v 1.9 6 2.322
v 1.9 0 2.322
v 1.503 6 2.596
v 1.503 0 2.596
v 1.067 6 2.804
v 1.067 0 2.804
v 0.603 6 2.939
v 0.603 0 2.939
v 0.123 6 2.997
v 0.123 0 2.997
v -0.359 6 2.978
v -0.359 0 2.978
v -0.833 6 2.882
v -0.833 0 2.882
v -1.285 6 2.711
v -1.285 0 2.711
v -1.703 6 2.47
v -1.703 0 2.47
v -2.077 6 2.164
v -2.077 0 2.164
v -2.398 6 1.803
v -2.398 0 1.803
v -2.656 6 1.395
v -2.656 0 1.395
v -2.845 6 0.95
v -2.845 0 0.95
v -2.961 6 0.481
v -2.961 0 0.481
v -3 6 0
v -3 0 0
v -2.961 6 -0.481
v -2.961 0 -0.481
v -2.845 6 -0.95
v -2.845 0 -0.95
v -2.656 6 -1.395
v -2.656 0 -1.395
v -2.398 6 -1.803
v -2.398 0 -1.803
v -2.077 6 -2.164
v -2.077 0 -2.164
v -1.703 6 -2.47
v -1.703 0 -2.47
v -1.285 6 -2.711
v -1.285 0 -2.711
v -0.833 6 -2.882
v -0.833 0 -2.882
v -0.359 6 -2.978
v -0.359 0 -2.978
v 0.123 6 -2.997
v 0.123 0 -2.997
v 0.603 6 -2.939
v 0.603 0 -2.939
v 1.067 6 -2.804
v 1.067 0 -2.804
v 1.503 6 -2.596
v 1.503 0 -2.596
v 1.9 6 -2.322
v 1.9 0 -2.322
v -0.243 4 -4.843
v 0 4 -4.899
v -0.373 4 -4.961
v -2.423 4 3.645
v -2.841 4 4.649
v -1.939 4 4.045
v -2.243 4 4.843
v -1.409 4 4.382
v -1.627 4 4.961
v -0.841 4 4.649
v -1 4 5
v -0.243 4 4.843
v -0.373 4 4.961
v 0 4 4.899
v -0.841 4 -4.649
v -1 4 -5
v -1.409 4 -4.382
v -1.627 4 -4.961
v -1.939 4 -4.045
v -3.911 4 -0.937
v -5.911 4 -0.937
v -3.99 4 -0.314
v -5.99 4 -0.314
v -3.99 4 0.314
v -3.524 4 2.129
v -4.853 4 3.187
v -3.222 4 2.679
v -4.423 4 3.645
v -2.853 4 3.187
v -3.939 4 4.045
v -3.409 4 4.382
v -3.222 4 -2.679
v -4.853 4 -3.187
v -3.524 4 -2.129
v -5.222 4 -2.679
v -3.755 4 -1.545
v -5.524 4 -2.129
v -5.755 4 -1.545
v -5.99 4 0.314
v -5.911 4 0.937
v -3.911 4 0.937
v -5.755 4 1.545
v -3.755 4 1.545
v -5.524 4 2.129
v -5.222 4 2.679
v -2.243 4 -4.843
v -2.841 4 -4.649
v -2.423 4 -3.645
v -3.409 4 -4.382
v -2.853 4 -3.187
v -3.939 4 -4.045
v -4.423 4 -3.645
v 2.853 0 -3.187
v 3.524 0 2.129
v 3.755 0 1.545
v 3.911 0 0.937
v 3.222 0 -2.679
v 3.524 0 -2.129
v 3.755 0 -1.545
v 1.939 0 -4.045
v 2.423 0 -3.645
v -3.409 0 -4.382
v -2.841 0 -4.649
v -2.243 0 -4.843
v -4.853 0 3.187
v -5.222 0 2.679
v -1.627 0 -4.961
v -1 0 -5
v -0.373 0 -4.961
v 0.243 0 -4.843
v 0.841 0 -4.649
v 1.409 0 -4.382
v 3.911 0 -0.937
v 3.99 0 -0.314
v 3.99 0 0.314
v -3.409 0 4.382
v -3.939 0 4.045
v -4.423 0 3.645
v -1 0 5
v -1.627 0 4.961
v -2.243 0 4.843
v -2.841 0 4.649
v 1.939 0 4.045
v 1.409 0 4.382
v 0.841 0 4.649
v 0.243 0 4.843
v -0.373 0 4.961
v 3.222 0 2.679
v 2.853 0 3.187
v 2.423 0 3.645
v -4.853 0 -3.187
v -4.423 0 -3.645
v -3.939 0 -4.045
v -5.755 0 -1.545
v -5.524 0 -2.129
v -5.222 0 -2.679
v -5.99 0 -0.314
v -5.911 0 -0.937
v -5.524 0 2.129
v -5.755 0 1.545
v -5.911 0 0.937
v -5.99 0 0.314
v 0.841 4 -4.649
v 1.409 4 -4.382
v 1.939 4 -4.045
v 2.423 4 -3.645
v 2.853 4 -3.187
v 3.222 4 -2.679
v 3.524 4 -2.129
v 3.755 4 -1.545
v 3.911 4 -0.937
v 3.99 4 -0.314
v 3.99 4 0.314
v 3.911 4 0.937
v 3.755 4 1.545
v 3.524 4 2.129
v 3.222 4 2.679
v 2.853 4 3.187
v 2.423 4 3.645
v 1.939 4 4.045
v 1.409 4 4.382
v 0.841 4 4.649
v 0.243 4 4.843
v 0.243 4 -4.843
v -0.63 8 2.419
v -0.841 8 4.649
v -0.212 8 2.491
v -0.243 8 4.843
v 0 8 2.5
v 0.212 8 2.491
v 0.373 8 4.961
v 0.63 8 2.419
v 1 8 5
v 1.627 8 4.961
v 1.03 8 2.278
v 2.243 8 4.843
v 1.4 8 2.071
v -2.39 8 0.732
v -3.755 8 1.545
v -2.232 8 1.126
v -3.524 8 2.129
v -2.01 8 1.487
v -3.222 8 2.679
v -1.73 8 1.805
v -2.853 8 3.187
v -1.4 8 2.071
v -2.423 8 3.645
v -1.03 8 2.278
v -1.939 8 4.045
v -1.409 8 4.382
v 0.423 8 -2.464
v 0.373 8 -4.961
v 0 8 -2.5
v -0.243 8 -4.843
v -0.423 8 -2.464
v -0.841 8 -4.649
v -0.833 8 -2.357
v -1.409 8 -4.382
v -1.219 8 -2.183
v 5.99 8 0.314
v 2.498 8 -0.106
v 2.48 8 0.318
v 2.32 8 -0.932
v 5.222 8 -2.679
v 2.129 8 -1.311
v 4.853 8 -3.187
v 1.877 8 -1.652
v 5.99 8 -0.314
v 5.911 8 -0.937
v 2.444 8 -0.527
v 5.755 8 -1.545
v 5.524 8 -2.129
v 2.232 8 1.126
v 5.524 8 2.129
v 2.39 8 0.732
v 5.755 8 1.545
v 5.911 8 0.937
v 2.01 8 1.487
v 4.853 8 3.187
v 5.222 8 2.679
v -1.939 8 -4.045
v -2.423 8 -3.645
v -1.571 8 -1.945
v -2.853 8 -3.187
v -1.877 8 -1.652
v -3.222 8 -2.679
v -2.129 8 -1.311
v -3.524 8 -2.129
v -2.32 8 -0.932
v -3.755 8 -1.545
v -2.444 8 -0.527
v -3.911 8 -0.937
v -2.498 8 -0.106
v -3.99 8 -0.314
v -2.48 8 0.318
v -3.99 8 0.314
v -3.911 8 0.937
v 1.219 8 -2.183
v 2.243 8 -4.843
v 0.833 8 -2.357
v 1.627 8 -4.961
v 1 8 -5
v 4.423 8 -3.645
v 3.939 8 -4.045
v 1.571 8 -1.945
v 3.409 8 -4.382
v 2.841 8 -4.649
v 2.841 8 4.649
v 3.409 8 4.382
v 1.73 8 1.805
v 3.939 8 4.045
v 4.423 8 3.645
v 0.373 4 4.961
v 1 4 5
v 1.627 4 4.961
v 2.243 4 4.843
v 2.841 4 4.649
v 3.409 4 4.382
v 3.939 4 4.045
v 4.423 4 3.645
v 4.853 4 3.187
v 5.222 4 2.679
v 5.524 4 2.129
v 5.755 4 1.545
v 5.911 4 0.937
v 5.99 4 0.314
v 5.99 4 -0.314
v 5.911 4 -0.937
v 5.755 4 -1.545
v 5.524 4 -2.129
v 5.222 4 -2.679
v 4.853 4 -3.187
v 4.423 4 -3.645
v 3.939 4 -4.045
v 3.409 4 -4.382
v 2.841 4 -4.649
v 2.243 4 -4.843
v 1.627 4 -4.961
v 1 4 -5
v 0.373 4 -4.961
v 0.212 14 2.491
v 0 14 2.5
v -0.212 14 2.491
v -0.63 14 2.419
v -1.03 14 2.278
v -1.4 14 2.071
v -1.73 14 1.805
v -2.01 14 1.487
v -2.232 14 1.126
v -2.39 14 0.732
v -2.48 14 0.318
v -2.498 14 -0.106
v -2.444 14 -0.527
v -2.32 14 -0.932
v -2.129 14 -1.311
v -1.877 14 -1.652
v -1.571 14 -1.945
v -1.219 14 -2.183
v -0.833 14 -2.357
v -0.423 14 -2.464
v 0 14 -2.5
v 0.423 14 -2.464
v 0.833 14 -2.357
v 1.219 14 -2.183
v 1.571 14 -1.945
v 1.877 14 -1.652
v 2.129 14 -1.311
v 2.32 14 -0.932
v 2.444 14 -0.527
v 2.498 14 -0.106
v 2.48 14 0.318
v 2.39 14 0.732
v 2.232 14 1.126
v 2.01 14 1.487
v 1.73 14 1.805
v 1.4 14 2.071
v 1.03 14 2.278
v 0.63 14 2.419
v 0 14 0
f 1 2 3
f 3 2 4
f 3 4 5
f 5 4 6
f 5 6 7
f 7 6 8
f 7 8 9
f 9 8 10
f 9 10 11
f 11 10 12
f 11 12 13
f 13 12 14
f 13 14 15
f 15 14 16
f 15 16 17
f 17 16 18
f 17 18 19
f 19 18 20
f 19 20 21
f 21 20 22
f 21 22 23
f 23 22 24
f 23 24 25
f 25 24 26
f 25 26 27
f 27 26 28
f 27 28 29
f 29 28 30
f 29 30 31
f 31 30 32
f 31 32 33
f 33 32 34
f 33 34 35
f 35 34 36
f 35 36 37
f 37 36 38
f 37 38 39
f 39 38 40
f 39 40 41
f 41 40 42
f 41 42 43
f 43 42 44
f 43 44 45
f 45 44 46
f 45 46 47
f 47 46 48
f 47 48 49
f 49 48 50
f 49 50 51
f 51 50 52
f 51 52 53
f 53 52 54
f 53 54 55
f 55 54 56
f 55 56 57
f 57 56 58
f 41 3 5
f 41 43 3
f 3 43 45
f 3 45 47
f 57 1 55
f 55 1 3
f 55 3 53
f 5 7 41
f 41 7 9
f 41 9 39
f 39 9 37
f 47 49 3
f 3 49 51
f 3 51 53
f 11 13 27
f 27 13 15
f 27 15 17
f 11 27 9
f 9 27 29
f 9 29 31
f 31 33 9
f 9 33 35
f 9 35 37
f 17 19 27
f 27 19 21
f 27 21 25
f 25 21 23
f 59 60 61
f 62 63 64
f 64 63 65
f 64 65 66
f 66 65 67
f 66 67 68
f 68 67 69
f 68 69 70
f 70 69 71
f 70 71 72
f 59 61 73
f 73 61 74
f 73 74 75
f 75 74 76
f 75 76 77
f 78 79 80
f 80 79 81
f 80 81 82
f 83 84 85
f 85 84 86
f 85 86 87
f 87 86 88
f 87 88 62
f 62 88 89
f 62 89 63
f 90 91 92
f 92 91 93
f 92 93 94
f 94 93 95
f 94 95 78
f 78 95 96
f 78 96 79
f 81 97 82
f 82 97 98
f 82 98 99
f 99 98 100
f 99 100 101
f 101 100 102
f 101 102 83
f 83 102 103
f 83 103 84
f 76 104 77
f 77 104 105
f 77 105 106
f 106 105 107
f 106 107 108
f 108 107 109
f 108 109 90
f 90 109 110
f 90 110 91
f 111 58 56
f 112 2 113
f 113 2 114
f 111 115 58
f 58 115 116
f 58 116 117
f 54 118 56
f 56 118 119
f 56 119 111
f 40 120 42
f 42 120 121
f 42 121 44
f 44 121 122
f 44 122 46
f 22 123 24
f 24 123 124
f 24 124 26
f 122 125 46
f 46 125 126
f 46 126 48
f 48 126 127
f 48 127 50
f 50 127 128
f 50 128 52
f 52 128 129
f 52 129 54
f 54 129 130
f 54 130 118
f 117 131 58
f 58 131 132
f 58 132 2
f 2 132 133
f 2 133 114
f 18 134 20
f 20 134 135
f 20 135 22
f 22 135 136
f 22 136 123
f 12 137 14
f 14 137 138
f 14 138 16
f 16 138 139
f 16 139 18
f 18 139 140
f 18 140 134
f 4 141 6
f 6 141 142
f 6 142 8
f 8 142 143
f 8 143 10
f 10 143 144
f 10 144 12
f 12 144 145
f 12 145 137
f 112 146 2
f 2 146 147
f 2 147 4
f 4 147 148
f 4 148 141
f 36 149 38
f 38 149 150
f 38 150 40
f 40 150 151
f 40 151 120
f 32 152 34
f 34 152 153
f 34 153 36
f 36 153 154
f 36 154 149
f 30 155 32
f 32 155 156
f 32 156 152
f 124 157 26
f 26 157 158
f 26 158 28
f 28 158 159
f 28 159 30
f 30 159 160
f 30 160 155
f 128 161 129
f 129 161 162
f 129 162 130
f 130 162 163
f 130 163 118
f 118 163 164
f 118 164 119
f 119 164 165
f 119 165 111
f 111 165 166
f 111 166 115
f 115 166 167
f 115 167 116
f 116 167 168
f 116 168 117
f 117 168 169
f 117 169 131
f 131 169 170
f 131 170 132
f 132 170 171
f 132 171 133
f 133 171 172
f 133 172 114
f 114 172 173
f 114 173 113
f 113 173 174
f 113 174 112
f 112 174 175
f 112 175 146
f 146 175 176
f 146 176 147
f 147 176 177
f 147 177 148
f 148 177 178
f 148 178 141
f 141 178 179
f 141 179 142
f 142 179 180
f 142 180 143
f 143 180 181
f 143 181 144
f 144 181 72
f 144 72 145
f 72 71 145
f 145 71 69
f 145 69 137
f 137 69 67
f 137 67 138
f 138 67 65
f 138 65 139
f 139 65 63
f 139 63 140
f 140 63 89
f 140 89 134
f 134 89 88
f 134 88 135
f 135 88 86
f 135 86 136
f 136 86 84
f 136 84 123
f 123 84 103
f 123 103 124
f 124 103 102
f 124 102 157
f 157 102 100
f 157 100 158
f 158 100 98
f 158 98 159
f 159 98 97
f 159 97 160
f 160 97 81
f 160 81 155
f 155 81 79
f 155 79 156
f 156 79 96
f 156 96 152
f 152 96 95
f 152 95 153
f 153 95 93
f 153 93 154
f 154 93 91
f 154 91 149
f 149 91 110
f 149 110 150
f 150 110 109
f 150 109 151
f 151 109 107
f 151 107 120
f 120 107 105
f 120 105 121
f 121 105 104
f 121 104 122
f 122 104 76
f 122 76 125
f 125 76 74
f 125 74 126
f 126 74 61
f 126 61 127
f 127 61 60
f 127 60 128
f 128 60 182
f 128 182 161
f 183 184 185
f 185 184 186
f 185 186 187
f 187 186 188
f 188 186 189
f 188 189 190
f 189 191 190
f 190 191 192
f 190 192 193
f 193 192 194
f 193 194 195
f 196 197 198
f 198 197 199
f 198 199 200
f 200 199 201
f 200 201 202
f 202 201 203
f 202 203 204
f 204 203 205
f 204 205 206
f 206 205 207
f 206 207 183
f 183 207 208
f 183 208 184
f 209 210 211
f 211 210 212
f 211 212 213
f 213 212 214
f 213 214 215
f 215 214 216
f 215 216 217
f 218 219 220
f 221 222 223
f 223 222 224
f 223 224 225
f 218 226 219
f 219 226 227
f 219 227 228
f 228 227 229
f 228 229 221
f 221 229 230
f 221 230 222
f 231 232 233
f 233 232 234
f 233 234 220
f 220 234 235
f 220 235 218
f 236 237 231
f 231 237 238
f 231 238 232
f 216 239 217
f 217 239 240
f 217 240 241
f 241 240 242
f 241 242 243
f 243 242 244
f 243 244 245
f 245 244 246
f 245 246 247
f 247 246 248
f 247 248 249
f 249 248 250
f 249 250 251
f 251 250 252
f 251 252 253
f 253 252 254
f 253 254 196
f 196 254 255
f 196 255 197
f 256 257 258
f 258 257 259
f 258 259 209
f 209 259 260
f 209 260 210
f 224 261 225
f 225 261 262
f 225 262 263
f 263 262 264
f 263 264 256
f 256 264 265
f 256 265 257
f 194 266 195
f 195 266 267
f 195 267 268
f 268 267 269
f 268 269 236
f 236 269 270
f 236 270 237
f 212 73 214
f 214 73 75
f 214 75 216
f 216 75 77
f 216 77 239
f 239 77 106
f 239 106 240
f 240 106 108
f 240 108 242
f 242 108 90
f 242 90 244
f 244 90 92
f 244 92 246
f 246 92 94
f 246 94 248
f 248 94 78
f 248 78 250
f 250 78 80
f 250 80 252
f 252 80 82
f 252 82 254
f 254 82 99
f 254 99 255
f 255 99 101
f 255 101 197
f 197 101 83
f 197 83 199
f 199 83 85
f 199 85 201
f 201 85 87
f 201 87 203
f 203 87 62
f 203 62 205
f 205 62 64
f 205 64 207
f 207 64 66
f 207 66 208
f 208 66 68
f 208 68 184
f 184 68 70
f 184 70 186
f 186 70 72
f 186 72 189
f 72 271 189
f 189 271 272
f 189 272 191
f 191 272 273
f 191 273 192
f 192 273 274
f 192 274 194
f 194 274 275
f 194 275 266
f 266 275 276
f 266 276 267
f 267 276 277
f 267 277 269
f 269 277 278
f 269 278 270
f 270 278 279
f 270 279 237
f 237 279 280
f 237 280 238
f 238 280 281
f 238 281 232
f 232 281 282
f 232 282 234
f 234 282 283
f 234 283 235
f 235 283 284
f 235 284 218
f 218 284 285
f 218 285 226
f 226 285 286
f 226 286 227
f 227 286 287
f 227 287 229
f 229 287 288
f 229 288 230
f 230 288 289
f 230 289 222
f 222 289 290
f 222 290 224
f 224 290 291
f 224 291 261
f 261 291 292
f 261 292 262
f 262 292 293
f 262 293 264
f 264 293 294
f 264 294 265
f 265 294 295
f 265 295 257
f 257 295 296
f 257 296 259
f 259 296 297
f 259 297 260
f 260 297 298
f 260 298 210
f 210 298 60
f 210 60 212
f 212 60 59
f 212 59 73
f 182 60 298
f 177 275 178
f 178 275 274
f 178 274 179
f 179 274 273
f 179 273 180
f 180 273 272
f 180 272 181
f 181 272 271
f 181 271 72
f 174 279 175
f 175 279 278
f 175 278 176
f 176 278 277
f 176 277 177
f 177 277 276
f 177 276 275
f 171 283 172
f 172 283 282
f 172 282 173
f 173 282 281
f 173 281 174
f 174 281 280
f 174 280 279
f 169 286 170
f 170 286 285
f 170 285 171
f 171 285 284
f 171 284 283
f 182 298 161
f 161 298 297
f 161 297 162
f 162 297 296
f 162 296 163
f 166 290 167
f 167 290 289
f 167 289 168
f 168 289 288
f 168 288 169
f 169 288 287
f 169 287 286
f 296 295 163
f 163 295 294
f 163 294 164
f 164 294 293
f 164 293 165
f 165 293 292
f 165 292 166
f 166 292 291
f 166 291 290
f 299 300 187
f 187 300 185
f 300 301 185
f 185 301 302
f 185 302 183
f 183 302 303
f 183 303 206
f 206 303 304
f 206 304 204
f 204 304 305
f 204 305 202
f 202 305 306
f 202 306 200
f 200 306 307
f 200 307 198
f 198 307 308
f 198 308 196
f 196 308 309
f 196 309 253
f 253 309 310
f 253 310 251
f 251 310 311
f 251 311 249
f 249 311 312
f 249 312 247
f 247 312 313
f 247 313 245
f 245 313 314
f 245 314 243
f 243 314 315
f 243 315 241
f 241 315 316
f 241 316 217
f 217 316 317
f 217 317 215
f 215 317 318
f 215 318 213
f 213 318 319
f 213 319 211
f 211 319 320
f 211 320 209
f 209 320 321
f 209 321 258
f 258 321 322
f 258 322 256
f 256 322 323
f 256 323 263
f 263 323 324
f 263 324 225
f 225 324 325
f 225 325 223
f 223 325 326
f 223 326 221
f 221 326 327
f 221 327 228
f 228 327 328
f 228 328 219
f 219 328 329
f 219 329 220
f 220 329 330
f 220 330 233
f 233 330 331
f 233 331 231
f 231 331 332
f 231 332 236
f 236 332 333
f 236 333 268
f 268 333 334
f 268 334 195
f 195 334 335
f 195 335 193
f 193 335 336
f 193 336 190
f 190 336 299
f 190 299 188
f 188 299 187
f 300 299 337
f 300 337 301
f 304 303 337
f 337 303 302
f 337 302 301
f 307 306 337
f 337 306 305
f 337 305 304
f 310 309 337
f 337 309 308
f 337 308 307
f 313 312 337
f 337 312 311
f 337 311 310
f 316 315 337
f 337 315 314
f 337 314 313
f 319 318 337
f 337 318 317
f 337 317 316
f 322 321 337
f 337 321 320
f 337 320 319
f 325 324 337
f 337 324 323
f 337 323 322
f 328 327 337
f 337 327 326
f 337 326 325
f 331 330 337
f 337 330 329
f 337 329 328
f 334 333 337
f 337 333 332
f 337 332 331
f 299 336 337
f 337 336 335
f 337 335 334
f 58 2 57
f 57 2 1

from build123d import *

# Parameters (mm, degrees)
SKETCH1_R           = 5
SKETCH1_R_2         = 3
BOSS_EXTRUDE1_DEPTH = 4
SKETCH2_R           = 5
BOSS_EXTRUDE2_DEPTH = 4
SKETCH3_R           = 2.5
BOSS_EXTRUDE3_DEPTH = 6
SKETCH4_R           = 3
CUT_EXTRUDE1_DEPTH  = 2
BOSS_EXTRUDE4_DEPTH = 6


with BuildPart() as part:
    # Sketch1 → Boss-Extrude1 (new body)
    with BuildSketch(Plane(origin=(0, 0, 0), x_dir=(1, 0, 0), z_dir=(0, 1, 0))):
        with Locations((-1, 0)):
            Circle(SKETCH1_R)
        Circle(SKETCH1_R_2, mode=Mode.SUBTRACT)
    extrude(amount=BOSS_EXTRUDE1_DEPTH)

    # Sketch2 → Boss-Extrude2 (add)
    with BuildSketch(Plane(origin=(0, 4, 0), x_dir=(1, 0, 0), z_dir=(0, 1, 0))):
        with Locations((1, 0)):
            Circle(SKETCH2_R)
    extrude(amount=BOSS_EXTRUDE2_DEPTH)

    # Sketch3 → Boss-Extrude3 (add)
    with BuildSketch(Plane(origin=(0, 8, 0), x_dir=(1, 0, 0), z_dir=(0, 1, 0))):
        Circle(SKETCH3_R)
    extrude(amount=BOSS_EXTRUDE3_DEPTH)

    # Sketch4 → Cut-Extrude1 (cut)
    with BuildSketch(Plane.XZ.offset(-4)):
        Circle(SKETCH4_R)
    extrude(amount=-CUT_EXTRUDE1_DEPTH, mode=Mode.SUBTRACT)

    # Sketch6 → Boss-Extrude4 (add, through all)
    with BuildSketch(Plane.XZ.offset(-6)):
        with BuildLine():
            ThreePointArc((3, 0), (2.711088342, 1.284523258), (1.9, 2.321637353))
            Line((1.9, 2.321637353), (1.9, -2.321637353))
            ThreePointArc((1.9, -2.321637353), (2.711088342, -1.284523258), (3, 0))
        make_face()
    extrude(amount=BOSS_EXTRUDE4_DEPTH)


solid = part.part
